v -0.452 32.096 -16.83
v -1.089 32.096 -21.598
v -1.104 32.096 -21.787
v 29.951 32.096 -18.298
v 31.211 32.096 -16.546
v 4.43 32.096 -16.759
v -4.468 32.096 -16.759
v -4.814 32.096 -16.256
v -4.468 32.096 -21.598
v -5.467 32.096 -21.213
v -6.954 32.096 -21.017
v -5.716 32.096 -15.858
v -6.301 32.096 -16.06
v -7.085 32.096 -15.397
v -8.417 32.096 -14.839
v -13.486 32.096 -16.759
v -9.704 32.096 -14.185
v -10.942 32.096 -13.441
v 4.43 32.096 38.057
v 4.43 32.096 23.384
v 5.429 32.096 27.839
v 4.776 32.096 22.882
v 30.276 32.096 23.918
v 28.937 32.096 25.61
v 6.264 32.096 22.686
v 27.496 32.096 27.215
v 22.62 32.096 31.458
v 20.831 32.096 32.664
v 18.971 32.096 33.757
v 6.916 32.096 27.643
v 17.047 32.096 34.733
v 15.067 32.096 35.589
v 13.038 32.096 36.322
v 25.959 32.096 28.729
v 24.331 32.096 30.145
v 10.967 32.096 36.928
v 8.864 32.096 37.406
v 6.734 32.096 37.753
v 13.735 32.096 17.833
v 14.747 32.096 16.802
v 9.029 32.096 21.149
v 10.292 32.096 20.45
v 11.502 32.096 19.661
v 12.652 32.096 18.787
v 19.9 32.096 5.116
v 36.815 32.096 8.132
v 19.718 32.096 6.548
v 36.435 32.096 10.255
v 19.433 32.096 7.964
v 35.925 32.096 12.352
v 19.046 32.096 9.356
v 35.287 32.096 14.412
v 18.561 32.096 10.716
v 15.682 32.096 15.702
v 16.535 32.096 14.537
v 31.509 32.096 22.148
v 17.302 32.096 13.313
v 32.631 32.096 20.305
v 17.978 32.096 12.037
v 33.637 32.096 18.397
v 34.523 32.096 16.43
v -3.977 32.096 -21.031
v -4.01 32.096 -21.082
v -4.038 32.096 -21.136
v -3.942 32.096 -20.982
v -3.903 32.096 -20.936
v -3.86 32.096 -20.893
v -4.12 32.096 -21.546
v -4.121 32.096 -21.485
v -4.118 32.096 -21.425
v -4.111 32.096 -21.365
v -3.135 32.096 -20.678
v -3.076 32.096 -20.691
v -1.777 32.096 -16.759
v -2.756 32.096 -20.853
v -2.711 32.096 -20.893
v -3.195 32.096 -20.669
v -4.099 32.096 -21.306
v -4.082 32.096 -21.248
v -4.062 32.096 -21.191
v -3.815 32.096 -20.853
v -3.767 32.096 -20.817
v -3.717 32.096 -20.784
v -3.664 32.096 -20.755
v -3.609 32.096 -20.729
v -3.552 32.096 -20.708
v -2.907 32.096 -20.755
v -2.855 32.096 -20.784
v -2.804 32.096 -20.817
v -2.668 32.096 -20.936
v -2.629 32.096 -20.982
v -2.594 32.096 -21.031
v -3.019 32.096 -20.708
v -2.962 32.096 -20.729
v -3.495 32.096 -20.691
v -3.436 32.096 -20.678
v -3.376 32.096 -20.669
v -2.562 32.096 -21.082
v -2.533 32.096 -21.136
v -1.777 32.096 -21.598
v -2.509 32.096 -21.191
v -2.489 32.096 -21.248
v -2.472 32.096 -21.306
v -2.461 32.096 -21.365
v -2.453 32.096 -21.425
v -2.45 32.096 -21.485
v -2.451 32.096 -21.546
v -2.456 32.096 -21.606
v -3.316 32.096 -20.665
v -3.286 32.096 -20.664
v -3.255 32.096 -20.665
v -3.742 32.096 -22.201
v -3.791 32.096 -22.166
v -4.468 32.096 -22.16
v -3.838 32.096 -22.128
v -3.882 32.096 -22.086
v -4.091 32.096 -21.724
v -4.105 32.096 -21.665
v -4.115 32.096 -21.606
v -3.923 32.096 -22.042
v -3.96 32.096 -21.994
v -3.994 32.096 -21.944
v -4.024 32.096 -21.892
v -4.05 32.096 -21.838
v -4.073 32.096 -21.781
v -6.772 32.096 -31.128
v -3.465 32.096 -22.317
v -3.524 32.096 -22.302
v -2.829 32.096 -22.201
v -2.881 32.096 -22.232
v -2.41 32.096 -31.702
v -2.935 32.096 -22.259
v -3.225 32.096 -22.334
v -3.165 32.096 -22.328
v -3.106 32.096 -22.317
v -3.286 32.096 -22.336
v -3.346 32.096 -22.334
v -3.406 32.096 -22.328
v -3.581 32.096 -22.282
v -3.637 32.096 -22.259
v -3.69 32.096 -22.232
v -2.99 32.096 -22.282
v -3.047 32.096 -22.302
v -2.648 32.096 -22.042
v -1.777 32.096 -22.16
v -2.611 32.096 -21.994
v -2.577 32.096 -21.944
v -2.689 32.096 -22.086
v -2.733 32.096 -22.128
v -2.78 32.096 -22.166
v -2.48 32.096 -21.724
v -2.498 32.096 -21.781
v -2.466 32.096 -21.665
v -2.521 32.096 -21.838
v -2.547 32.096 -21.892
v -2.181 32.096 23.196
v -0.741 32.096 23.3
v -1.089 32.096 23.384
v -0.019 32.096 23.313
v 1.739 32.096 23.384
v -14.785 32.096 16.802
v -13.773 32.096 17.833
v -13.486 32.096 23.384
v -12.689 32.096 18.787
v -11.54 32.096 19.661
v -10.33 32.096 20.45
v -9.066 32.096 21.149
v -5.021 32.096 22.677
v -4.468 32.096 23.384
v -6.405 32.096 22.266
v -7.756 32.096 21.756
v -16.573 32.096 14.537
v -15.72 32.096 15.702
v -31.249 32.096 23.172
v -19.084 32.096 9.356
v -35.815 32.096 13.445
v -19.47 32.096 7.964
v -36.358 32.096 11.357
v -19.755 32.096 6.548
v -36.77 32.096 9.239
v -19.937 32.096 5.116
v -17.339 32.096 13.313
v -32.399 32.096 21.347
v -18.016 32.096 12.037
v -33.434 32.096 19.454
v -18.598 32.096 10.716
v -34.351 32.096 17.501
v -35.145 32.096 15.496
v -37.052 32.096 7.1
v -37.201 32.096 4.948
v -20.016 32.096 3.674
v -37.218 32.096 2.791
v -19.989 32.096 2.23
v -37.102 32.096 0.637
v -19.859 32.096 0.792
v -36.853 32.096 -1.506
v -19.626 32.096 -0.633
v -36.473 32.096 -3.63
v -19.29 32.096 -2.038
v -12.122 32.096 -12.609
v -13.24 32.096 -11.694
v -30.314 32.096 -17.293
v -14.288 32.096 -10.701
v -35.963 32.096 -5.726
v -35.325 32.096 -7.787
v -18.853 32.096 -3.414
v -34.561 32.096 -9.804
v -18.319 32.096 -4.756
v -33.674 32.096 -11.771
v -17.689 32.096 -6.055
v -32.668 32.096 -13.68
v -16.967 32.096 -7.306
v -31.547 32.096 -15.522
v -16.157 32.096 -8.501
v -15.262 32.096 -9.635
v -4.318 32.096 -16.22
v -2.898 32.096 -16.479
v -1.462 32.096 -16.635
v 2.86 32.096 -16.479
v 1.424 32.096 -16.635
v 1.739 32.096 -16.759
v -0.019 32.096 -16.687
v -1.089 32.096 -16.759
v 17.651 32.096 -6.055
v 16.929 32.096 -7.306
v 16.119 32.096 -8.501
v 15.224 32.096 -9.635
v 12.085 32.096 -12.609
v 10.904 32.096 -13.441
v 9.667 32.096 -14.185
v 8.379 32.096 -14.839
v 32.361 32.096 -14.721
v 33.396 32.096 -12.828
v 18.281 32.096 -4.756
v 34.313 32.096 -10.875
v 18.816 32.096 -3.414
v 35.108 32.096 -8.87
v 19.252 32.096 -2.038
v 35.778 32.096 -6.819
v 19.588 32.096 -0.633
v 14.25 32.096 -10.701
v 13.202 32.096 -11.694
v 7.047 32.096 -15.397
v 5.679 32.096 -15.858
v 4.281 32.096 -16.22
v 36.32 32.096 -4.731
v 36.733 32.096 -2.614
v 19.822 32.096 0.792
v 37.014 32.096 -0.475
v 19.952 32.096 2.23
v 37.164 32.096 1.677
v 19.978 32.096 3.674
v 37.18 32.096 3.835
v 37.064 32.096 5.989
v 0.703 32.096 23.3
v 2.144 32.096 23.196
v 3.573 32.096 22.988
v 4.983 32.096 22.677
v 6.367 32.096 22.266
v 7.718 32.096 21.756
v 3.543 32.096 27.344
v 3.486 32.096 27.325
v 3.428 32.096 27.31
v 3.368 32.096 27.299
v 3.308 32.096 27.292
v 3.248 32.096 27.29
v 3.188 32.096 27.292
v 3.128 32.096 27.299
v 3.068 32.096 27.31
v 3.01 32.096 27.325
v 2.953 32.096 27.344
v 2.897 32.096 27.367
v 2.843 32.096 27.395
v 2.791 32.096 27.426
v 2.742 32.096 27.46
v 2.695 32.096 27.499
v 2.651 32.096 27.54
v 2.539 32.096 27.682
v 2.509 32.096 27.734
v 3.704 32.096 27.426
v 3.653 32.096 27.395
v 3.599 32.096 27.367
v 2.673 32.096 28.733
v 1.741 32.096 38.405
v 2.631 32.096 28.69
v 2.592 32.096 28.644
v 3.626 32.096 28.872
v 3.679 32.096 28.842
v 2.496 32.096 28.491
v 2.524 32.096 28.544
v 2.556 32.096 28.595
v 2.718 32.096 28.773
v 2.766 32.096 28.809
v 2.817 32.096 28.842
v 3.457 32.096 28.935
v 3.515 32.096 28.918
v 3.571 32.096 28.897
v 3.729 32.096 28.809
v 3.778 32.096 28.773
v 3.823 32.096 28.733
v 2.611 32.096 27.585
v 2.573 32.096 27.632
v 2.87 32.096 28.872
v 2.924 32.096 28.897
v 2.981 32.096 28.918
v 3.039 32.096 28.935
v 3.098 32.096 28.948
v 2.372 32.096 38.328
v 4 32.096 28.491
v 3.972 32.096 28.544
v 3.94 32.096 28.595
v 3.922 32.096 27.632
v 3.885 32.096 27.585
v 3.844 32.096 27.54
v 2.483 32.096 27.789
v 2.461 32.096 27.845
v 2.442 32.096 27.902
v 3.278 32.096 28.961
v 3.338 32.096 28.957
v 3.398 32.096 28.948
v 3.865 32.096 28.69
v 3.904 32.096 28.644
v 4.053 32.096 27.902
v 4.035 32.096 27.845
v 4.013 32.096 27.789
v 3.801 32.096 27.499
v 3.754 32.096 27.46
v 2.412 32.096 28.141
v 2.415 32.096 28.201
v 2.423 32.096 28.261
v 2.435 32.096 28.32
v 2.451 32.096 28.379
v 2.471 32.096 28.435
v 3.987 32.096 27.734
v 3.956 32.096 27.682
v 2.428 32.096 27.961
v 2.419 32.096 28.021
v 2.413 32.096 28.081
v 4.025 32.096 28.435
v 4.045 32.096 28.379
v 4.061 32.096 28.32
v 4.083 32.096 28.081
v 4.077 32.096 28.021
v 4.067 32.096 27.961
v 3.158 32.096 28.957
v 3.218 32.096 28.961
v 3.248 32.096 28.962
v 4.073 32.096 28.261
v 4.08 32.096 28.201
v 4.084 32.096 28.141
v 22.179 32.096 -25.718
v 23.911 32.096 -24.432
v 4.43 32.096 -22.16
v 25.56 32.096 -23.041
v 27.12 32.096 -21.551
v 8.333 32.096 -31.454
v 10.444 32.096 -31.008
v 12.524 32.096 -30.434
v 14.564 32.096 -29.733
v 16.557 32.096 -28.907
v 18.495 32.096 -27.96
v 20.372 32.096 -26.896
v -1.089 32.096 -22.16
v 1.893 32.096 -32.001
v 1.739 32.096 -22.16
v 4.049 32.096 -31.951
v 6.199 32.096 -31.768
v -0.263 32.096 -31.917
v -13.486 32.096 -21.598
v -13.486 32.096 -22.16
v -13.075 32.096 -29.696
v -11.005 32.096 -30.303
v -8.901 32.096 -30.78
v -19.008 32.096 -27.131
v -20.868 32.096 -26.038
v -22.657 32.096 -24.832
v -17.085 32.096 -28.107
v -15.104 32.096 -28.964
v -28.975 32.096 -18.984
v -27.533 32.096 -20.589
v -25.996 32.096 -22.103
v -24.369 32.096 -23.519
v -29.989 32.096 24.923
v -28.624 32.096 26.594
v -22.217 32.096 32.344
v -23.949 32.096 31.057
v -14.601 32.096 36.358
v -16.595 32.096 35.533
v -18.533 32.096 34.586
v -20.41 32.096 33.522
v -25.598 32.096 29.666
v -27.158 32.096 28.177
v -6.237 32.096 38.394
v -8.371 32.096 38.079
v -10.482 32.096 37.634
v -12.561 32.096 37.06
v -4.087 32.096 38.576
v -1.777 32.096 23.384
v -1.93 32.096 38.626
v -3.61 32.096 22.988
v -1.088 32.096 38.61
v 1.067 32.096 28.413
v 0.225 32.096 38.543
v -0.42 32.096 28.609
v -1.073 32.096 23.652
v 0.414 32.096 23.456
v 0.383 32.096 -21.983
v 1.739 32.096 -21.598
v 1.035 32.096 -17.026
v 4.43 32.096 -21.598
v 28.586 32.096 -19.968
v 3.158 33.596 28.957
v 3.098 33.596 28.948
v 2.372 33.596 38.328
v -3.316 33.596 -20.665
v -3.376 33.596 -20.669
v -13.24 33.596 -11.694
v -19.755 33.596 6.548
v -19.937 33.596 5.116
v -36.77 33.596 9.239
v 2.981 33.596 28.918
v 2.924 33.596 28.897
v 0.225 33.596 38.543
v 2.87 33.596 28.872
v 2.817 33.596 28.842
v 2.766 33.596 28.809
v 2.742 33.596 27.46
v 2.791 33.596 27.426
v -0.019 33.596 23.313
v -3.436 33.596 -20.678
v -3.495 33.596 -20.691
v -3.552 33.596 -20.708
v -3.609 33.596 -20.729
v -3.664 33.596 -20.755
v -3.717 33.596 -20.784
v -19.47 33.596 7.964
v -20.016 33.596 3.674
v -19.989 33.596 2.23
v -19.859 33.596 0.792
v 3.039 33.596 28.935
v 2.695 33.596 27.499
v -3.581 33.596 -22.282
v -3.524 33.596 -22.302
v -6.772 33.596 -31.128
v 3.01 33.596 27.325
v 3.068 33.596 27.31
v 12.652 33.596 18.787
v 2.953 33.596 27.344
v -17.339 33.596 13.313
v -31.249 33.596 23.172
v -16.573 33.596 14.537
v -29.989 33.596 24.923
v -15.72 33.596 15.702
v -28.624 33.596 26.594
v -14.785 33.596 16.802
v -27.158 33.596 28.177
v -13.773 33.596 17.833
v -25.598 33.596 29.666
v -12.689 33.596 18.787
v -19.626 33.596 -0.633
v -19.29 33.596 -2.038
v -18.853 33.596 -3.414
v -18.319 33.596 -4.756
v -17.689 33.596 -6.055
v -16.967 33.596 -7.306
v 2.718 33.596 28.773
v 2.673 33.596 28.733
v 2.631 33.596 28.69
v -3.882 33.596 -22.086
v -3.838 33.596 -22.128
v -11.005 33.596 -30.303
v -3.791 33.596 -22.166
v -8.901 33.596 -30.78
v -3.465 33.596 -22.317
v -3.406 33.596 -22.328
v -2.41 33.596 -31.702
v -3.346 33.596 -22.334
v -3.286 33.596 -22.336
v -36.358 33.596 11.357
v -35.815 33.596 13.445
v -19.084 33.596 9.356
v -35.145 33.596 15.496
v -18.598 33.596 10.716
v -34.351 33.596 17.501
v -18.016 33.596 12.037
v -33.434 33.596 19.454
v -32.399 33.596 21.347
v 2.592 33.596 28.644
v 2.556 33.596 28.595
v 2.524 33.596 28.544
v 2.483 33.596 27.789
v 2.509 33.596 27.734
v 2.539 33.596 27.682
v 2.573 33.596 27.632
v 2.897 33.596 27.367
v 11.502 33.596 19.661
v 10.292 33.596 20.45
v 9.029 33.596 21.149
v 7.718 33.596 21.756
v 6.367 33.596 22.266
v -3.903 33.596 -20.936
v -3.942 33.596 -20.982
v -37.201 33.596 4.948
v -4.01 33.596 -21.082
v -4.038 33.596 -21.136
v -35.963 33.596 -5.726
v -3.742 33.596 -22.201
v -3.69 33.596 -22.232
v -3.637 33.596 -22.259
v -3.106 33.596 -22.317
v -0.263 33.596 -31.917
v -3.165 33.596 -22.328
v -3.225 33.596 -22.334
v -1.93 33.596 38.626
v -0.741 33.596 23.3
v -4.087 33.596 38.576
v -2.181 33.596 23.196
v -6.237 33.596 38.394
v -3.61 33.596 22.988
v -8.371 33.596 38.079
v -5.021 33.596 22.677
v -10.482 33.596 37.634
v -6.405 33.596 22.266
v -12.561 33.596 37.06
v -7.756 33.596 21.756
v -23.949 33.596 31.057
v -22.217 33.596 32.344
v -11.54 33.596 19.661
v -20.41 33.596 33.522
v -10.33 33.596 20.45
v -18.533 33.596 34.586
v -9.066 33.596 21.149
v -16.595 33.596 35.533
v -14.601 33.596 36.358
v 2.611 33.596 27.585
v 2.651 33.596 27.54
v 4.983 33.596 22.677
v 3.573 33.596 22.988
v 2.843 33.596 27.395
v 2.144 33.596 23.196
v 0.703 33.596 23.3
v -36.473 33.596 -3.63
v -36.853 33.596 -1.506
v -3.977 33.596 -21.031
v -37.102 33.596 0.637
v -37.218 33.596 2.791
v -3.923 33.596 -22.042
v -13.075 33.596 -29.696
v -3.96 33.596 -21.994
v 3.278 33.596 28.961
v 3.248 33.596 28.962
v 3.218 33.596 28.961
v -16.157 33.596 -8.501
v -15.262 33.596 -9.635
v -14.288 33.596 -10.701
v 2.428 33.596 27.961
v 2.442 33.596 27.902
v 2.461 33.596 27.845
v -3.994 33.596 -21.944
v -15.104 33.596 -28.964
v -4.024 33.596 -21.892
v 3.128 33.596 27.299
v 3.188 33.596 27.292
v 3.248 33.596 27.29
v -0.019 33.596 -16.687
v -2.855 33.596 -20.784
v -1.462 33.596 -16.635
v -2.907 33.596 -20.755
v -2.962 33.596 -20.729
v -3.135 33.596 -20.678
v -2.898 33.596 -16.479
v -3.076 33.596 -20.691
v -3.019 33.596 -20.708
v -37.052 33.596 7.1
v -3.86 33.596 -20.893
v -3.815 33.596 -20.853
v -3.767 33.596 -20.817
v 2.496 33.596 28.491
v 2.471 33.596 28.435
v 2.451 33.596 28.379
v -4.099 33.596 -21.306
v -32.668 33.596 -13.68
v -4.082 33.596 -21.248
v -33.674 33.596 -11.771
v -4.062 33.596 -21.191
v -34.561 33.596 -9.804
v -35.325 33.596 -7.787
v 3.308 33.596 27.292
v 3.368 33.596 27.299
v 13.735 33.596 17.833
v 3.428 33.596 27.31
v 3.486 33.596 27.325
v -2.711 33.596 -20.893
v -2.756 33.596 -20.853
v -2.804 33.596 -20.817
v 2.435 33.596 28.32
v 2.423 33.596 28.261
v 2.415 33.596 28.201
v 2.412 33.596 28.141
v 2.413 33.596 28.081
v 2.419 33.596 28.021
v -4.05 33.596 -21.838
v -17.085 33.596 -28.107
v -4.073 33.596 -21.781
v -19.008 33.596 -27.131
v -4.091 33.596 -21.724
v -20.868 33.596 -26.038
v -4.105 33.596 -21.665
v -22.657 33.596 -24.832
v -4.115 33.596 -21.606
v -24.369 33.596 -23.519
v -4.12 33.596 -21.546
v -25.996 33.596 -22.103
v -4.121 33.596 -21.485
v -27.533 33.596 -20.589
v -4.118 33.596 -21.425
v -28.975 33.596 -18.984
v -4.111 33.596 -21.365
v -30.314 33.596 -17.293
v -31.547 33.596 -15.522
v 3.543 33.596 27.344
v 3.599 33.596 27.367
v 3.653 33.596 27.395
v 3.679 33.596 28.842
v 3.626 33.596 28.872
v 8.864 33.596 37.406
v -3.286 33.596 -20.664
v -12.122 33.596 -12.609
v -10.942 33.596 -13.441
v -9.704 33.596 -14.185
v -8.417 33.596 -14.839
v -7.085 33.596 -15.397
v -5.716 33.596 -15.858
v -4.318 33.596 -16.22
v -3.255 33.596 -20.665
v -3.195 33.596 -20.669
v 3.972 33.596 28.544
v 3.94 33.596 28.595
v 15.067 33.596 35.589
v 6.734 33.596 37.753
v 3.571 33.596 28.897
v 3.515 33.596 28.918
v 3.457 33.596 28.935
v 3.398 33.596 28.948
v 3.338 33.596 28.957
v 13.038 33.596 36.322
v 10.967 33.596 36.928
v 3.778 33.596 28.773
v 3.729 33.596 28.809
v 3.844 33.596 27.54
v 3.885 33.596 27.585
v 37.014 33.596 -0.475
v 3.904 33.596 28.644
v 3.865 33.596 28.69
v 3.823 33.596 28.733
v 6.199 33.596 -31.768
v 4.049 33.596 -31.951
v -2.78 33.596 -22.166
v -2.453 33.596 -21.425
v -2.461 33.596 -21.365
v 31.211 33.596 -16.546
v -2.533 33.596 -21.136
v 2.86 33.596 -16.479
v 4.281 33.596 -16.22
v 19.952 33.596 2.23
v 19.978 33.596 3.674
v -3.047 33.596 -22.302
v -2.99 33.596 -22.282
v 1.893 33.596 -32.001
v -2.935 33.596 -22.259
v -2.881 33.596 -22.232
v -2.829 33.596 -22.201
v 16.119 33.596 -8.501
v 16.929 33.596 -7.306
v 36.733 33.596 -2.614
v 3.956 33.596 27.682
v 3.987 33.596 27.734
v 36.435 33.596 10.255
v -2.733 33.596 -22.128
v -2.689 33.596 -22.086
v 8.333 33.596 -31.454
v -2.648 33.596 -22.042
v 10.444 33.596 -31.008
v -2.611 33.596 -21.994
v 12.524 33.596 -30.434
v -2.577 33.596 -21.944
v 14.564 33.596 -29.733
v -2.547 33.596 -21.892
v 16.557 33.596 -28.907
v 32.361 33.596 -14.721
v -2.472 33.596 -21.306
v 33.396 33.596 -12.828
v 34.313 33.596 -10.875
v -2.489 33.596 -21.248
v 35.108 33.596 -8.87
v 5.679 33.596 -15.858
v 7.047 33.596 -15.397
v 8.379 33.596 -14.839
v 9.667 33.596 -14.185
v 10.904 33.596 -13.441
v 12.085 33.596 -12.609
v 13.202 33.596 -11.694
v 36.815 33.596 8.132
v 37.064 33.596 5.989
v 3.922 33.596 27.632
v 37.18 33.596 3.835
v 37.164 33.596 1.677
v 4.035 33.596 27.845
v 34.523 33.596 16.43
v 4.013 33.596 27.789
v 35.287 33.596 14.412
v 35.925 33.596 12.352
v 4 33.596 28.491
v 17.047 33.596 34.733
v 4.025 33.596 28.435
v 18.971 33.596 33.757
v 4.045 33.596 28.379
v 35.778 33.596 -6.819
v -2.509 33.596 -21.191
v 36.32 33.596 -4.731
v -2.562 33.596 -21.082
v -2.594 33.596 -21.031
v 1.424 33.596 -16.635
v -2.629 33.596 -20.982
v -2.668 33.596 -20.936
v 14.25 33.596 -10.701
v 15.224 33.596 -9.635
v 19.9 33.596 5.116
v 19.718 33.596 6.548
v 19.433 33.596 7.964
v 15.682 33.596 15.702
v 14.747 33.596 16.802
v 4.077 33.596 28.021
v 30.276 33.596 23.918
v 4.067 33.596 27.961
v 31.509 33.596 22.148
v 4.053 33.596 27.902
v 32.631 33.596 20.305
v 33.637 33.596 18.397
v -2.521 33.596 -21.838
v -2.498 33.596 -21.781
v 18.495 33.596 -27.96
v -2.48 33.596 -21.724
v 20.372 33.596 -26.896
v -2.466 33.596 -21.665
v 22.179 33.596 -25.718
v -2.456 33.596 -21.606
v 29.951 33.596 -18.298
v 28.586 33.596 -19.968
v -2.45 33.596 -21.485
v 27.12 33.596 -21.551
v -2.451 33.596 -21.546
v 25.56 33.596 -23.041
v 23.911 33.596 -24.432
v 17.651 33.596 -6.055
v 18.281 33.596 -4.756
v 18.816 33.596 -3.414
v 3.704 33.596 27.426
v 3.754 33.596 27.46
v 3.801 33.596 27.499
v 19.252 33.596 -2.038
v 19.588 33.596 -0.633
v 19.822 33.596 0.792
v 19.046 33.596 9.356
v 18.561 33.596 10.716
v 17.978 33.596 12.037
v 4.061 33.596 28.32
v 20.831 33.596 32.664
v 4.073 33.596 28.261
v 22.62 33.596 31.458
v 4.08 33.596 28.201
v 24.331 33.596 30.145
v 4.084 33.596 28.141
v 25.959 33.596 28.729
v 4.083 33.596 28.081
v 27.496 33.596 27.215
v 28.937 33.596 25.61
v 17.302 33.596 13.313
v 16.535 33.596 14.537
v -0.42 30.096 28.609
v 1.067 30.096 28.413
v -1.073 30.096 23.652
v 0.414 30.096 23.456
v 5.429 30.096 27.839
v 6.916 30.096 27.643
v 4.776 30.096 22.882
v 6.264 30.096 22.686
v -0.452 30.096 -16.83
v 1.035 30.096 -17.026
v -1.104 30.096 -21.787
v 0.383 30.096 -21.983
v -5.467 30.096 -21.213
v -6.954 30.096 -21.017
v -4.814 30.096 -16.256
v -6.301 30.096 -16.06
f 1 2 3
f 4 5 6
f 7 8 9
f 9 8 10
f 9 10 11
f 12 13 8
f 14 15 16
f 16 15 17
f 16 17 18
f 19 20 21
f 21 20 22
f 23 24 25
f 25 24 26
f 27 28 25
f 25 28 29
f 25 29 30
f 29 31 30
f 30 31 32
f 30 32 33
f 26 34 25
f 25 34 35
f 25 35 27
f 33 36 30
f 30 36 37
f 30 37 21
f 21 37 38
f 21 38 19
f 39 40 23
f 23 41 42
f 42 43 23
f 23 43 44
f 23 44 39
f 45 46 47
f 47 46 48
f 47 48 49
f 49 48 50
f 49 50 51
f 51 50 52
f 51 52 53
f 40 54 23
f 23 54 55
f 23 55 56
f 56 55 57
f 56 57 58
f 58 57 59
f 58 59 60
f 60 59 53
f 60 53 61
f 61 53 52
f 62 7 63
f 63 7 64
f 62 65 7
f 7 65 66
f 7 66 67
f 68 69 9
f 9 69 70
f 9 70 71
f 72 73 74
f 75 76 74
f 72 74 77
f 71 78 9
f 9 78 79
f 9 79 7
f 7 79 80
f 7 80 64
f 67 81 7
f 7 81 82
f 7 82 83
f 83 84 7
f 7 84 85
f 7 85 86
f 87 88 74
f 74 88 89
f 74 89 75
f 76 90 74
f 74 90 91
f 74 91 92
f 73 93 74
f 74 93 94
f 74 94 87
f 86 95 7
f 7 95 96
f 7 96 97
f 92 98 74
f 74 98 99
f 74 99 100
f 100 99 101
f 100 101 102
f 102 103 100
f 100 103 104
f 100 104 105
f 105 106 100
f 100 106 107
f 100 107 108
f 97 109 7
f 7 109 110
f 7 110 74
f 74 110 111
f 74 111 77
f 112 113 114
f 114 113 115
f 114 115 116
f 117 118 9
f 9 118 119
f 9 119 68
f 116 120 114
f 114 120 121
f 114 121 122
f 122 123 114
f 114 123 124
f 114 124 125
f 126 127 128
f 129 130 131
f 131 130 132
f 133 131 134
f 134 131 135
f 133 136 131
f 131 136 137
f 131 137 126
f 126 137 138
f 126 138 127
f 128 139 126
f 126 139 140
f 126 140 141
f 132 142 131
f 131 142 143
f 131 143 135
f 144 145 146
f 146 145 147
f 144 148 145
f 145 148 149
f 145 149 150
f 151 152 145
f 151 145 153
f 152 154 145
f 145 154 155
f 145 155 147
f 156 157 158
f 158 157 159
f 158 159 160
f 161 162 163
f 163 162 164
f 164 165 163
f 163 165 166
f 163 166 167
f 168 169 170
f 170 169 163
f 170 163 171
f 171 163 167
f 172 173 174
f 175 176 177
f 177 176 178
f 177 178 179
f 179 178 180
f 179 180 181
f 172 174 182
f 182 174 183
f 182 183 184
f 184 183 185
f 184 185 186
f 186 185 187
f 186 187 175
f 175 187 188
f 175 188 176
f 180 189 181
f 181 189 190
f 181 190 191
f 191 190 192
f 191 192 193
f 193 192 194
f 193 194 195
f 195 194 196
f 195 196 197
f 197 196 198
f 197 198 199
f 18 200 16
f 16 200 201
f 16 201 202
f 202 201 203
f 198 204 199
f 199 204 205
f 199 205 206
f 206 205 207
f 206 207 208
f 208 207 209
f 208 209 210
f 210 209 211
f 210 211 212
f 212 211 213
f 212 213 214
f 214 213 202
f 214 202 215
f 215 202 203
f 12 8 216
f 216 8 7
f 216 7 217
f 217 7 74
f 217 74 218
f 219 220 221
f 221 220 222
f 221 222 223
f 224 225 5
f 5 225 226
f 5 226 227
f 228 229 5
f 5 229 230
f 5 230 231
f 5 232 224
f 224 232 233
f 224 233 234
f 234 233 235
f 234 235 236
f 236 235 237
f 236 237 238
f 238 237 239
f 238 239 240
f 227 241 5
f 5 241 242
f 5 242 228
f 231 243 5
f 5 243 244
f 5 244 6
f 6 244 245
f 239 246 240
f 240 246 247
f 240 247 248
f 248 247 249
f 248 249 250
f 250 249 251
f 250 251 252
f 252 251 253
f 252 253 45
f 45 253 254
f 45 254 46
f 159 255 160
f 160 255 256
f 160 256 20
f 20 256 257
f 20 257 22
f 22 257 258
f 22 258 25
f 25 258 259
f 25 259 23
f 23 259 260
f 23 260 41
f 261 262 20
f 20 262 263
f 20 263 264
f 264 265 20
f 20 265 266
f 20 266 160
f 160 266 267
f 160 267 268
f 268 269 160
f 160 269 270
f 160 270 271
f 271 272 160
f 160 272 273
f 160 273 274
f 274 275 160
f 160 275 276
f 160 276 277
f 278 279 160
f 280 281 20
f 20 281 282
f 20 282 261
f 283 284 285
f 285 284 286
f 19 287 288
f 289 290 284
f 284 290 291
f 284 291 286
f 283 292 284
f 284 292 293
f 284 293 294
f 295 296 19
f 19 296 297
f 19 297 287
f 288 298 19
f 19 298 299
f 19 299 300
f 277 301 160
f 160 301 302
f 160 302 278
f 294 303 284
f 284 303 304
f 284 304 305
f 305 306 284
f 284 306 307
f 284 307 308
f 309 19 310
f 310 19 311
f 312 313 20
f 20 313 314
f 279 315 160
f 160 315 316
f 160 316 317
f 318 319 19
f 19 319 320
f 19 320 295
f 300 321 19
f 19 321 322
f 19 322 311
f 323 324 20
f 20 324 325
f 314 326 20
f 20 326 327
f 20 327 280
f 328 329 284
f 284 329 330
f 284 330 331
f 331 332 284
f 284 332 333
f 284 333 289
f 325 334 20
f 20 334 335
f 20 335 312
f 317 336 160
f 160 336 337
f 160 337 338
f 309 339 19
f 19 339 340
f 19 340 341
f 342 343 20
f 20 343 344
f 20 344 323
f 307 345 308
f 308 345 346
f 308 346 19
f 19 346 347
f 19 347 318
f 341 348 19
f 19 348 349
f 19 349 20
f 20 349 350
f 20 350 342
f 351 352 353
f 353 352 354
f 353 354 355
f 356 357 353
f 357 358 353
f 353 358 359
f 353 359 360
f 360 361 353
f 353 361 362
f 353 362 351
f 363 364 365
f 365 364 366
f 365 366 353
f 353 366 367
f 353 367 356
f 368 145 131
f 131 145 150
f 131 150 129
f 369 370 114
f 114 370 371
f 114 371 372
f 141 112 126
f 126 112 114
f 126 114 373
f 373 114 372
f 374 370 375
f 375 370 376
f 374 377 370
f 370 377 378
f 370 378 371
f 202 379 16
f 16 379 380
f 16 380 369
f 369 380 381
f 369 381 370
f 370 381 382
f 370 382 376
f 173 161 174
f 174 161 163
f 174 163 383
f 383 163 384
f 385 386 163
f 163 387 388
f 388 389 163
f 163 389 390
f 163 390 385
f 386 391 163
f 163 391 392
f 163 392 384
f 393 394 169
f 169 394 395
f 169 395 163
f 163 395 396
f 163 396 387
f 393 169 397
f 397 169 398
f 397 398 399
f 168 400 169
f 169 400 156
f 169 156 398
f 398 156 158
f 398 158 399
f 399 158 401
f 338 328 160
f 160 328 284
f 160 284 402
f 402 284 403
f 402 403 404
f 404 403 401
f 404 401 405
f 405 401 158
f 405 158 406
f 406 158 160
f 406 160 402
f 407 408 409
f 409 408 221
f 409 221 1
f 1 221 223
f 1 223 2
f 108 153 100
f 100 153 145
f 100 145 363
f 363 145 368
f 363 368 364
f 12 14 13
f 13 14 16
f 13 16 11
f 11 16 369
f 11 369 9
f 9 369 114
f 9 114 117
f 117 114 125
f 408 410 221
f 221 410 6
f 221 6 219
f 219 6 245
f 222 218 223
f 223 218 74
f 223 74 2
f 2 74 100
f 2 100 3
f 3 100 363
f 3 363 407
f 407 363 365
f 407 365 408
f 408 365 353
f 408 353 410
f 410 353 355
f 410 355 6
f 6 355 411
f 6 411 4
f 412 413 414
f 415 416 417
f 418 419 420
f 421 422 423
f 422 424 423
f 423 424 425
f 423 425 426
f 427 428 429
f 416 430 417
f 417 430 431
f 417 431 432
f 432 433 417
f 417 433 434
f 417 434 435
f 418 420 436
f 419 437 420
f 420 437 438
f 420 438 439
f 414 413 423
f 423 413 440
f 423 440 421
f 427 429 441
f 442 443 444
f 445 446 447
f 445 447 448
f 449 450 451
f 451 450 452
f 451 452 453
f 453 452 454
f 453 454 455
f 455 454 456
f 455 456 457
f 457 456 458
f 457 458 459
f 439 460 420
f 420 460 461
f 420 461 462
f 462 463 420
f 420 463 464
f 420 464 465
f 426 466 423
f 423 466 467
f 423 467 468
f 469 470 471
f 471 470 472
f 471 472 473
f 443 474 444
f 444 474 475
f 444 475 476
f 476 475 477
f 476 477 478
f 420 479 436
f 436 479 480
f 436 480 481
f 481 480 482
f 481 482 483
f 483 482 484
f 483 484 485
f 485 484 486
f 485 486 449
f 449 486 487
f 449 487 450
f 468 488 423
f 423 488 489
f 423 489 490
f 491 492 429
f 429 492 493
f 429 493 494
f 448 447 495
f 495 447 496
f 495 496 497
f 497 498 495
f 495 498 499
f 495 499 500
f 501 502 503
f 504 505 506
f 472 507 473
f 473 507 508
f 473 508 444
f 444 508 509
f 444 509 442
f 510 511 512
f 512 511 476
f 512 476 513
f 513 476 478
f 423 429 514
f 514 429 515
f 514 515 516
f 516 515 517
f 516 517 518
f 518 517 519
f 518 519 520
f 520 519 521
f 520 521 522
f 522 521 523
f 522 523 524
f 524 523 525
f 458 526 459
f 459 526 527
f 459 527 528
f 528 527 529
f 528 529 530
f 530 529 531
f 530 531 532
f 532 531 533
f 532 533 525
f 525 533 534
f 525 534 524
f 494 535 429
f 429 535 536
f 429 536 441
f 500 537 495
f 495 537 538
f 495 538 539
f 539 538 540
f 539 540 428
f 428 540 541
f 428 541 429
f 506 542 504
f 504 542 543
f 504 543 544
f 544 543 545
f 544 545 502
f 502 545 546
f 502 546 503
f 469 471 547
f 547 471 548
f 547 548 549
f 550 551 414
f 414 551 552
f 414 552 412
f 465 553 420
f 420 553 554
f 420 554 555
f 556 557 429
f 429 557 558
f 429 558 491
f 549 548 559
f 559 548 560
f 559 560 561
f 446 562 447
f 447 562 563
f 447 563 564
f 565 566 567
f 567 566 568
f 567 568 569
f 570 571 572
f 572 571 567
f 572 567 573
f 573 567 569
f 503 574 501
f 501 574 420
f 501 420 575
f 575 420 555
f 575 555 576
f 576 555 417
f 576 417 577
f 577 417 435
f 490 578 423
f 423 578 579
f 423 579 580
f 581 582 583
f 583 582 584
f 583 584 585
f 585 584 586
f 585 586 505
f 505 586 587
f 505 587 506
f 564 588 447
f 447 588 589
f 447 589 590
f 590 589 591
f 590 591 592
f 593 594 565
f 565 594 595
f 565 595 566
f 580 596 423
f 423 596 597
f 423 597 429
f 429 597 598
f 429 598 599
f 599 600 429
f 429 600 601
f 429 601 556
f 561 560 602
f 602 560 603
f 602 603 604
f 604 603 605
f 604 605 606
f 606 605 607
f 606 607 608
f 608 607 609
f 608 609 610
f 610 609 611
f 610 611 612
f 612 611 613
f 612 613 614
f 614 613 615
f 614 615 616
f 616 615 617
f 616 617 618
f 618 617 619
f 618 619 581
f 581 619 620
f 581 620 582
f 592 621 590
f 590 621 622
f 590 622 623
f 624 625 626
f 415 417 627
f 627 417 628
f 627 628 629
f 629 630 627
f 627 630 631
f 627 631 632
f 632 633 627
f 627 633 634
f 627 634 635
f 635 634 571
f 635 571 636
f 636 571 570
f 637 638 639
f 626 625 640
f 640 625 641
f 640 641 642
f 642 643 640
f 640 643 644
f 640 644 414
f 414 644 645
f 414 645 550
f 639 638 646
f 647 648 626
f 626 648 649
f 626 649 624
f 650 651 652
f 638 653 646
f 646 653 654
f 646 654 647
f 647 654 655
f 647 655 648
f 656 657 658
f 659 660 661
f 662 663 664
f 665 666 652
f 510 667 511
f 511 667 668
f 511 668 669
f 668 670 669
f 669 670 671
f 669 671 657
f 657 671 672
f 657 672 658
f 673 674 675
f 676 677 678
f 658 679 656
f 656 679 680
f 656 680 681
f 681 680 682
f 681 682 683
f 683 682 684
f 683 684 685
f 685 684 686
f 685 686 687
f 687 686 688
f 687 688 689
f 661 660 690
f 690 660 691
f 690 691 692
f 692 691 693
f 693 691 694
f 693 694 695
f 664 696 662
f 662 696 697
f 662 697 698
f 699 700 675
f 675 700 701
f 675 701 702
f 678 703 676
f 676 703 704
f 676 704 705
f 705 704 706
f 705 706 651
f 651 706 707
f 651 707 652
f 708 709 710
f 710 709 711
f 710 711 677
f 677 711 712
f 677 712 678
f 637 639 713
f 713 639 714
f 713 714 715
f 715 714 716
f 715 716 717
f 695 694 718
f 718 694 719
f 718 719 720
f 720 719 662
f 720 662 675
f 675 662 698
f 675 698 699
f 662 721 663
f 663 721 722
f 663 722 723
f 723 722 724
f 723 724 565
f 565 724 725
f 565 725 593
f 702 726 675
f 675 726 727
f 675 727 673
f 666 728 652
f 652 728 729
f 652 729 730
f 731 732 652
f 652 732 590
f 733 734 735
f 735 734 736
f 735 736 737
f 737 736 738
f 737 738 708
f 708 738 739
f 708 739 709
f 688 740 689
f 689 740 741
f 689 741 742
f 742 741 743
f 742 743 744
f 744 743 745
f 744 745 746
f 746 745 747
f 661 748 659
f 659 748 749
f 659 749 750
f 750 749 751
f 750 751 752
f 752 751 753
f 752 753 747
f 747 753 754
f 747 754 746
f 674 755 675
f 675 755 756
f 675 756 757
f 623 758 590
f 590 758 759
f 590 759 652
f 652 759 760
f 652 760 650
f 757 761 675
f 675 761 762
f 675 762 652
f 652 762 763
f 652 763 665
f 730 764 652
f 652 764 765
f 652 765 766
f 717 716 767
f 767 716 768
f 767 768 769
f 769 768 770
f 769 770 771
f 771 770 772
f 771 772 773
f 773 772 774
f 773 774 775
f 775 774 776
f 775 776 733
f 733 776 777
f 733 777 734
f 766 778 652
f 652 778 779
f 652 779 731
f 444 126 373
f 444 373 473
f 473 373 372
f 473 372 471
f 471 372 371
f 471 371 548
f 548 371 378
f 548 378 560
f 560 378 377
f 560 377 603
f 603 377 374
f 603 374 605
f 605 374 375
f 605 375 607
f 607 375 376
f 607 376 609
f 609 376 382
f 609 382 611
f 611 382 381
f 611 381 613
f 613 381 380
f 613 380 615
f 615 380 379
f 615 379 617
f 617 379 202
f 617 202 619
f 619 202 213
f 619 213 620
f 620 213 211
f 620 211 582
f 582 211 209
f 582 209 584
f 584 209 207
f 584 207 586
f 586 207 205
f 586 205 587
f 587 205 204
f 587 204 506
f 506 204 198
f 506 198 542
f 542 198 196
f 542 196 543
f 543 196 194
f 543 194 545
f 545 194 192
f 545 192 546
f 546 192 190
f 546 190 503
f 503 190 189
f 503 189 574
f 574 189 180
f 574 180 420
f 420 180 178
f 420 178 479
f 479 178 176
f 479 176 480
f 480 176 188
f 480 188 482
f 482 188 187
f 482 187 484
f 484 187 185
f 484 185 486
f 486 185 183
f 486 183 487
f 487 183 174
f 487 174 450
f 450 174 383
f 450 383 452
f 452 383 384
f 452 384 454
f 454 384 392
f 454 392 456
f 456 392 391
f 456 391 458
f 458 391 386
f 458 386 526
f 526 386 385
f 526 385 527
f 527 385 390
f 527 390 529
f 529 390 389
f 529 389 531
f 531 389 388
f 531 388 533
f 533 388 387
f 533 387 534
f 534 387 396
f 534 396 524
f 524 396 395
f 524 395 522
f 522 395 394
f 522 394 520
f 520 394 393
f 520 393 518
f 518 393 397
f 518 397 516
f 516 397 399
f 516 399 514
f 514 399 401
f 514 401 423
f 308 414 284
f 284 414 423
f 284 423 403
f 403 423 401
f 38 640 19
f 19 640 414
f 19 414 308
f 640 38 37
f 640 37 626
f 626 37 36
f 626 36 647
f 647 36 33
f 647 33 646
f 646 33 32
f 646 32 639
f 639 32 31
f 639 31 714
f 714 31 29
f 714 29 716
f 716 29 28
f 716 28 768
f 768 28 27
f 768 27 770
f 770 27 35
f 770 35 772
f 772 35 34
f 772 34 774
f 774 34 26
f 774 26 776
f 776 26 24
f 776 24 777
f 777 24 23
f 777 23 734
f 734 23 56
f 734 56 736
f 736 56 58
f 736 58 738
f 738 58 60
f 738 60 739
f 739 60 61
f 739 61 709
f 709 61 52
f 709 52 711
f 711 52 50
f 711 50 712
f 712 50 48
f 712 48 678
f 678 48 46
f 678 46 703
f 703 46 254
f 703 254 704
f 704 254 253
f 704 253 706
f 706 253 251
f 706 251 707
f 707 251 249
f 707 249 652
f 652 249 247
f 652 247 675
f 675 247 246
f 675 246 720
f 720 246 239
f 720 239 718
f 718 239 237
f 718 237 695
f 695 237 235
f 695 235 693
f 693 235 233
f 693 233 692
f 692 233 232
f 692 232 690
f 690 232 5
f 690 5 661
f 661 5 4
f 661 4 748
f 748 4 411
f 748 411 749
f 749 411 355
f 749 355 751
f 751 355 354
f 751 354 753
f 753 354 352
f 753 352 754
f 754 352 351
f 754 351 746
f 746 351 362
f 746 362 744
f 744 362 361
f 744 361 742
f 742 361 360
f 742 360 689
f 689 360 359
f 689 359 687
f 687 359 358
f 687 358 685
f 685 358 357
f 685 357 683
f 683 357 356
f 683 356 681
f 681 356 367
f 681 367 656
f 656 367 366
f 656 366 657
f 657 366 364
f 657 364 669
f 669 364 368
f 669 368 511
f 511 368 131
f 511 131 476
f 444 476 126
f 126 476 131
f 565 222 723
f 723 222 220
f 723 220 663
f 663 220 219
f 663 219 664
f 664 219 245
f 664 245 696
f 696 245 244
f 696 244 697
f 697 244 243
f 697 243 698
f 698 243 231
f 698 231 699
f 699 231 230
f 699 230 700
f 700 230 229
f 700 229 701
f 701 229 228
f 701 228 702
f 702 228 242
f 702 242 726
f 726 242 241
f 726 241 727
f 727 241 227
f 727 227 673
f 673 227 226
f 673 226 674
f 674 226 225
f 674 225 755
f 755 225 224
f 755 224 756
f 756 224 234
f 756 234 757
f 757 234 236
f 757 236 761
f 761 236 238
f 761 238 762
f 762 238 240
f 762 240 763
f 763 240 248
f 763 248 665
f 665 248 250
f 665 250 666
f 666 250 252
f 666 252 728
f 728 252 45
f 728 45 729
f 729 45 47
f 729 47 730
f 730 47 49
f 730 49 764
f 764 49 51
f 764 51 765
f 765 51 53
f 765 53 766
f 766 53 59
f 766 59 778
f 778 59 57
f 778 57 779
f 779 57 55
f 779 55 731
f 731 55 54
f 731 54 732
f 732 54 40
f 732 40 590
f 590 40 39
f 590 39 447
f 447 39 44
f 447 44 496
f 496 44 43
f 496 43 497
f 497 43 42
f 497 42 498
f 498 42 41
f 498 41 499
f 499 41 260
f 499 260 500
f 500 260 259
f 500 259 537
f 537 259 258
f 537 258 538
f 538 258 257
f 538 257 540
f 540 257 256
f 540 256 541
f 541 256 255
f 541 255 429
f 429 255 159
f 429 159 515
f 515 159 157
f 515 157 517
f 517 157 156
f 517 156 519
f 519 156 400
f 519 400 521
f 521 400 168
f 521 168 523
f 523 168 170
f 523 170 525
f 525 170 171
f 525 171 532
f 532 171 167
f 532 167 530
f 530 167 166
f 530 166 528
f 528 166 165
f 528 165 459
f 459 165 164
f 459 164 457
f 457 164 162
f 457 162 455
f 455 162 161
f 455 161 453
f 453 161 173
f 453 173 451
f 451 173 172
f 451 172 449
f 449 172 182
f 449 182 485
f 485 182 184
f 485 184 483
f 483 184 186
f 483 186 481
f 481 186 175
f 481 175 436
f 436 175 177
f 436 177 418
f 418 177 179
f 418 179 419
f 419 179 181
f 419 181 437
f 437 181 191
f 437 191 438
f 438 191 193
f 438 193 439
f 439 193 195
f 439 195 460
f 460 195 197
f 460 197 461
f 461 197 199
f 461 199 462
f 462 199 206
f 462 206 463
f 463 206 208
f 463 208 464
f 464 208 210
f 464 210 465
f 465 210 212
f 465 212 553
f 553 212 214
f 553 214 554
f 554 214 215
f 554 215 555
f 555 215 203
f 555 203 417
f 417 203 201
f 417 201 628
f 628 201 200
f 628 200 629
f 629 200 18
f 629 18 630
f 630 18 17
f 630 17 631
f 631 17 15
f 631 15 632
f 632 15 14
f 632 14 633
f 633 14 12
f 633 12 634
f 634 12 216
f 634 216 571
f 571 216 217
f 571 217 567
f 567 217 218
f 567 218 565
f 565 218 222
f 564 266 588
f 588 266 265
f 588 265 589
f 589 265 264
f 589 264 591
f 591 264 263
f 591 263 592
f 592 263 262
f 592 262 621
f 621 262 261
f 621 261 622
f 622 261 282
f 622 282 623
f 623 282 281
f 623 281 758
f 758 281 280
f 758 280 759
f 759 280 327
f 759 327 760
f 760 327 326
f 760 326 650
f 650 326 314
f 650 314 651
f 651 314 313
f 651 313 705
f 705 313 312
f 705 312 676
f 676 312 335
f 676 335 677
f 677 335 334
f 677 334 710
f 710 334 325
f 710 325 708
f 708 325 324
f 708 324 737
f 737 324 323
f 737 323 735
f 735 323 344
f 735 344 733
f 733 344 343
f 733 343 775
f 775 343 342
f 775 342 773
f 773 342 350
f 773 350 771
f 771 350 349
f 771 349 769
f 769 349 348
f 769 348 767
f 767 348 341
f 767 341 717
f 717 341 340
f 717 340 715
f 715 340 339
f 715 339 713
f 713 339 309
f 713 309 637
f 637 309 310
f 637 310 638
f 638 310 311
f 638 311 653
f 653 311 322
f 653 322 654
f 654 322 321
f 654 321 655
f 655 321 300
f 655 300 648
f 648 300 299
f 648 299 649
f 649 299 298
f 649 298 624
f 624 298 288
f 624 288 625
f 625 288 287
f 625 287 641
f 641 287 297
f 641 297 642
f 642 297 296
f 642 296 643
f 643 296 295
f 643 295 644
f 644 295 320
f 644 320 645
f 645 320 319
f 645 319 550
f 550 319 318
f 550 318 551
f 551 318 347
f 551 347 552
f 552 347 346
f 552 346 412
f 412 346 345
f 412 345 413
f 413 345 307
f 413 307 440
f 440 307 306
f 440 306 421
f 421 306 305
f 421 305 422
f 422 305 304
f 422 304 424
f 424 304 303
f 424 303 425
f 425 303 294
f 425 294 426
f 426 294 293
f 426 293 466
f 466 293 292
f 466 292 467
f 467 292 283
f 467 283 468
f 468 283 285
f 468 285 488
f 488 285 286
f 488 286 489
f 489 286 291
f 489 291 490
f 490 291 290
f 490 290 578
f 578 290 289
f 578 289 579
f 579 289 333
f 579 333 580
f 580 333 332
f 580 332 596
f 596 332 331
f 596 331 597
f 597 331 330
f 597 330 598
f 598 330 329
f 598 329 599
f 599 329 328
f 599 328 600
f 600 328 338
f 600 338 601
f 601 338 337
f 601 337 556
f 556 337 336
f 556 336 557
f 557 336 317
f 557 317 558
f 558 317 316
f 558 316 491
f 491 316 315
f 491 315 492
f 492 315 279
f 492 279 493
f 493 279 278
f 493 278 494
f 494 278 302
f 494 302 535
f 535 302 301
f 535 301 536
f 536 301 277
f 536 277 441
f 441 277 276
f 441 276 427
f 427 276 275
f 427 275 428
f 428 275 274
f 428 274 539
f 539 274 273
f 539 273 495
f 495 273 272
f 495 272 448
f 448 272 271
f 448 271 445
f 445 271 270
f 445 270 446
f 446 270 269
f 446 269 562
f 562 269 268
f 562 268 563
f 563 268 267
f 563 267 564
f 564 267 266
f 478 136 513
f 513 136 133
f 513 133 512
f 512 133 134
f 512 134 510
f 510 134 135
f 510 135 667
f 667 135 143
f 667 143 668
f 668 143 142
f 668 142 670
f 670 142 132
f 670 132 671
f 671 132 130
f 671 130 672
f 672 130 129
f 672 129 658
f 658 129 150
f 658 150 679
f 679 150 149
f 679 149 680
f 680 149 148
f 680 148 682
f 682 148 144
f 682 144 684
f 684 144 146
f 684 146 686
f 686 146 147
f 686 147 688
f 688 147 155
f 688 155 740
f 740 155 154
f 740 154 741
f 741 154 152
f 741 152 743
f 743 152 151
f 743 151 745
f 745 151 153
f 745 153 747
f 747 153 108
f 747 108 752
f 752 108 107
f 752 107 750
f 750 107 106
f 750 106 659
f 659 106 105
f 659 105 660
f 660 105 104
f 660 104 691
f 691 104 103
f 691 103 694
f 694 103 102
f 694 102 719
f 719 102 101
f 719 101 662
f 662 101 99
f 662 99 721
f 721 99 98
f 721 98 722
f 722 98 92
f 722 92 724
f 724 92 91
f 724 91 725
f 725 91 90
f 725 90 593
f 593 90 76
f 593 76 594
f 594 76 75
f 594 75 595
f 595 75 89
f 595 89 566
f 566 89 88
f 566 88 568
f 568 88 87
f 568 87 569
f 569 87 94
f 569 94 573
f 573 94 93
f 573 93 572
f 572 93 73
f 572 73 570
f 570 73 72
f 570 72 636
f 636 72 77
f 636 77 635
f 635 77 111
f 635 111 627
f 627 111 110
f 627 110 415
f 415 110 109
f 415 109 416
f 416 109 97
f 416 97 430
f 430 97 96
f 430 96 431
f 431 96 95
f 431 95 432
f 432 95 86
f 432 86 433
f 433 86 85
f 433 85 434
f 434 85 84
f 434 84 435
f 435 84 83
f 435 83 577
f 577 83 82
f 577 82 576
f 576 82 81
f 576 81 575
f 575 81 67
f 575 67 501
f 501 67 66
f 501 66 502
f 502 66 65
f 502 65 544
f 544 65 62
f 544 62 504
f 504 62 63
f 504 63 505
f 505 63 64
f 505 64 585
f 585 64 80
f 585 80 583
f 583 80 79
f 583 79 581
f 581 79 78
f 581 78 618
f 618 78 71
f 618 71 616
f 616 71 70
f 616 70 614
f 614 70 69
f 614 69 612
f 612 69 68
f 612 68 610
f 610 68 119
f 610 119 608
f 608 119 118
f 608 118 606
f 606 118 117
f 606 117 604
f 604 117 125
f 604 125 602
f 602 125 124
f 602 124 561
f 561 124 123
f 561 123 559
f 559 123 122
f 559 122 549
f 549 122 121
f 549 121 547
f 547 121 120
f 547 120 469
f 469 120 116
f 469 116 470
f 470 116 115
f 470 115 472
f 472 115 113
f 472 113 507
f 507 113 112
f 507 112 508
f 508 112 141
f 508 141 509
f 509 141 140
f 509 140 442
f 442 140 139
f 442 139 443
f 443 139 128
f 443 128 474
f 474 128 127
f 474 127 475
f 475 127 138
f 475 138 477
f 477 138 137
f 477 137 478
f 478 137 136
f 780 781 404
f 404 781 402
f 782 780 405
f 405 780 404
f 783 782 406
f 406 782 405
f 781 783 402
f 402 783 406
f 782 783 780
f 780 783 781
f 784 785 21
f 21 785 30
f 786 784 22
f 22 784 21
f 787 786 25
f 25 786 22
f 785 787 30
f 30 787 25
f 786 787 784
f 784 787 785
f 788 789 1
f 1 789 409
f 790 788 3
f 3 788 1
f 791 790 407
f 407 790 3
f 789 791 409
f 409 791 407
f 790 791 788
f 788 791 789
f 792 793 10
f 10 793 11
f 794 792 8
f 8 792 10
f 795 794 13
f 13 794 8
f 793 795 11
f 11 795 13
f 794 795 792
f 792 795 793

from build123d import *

# Parameters (mm, degrees)
SKETCH89_R          = 20
SKETCH89_R_2        = 0.836
BOSS_EXTRUDE1_DEPTH = 1.5
BOSS_EXTRUDE2_DEPTH = 2


with BuildPart() as part:
    # Sketch89 → Boss-Extrude1 (new body)
    with BuildSketch(Plane(origin=(0, 32.096297607, 0), x_dir=(1, 0, 0), z_dir=(0, 1, 0))):
        with BuildLine():
            Line((-6.77197393, 31.12758978), (-2.40961654, 31.701905026))
            ThreePointArc((-2.40961654, 31.701905026), (36.88994717, 1.546289176), (6.73433132, -37.753274534))
            Line((6.73433132, -37.753274534), (2.37197393, -38.32758978))
            ThreePointArc((2.37197393, -38.32758978), (-36.92758978, -8.17197393), (-6.77197393, 31.12758978))
        make_face()
        with Locations(Location((-0.018821305, -3.312842377, 0), (0, 0, 270))):
            Circle(SKETCH89_R, mode=Mode.SUBTRACT)
        with Locations(Location((3.247890703, -28.125983544, 0), (0, 0, 270))):
            Circle(SKETCH89_R_2, mode=Mode.SUBTRACT)
        with Locations(Location((-3.285533313, 21.500298789, 0), (0, 0, 270))):
            Circle(SKETCH89_R_2, mode=Mode.SUBTRACT)
    extrude(amount=BOSS_EXTRUDE1_DEPTH)

    # Sketch90 → Boss-Extrude2 (add)
    with BuildSketch(Plane.XZ.offset(-32.096297607)):
        Polygon((1.066712008, 28.413141166), (0.414081046, 23.45591686), (-1.073086246, 23.651706148), (-0.420455285, 28.608930455), align=None)
        Polygon((5.429069398, 27.838825921), (4.776438436, 22.881601614), (6.263605729, 22.685812325), (6.91623669, 27.643036632), align=None)
        Polygon((-0.451723656, -16.830232105), (-1.104354617, -21.787456412), (0.382812675, -21.9832457), (1.035443636, -17.026021394), align=None)
        Polygon((-5.466712008, -21.213141166), (-4.814081046, -16.25591686), (-6.301248339, -16.060127571), (-6.9538793, -21.017351878), align=None)
    extrude(amount=BOSS_EXTRUDE2_DEPTH)


solid = part.part
